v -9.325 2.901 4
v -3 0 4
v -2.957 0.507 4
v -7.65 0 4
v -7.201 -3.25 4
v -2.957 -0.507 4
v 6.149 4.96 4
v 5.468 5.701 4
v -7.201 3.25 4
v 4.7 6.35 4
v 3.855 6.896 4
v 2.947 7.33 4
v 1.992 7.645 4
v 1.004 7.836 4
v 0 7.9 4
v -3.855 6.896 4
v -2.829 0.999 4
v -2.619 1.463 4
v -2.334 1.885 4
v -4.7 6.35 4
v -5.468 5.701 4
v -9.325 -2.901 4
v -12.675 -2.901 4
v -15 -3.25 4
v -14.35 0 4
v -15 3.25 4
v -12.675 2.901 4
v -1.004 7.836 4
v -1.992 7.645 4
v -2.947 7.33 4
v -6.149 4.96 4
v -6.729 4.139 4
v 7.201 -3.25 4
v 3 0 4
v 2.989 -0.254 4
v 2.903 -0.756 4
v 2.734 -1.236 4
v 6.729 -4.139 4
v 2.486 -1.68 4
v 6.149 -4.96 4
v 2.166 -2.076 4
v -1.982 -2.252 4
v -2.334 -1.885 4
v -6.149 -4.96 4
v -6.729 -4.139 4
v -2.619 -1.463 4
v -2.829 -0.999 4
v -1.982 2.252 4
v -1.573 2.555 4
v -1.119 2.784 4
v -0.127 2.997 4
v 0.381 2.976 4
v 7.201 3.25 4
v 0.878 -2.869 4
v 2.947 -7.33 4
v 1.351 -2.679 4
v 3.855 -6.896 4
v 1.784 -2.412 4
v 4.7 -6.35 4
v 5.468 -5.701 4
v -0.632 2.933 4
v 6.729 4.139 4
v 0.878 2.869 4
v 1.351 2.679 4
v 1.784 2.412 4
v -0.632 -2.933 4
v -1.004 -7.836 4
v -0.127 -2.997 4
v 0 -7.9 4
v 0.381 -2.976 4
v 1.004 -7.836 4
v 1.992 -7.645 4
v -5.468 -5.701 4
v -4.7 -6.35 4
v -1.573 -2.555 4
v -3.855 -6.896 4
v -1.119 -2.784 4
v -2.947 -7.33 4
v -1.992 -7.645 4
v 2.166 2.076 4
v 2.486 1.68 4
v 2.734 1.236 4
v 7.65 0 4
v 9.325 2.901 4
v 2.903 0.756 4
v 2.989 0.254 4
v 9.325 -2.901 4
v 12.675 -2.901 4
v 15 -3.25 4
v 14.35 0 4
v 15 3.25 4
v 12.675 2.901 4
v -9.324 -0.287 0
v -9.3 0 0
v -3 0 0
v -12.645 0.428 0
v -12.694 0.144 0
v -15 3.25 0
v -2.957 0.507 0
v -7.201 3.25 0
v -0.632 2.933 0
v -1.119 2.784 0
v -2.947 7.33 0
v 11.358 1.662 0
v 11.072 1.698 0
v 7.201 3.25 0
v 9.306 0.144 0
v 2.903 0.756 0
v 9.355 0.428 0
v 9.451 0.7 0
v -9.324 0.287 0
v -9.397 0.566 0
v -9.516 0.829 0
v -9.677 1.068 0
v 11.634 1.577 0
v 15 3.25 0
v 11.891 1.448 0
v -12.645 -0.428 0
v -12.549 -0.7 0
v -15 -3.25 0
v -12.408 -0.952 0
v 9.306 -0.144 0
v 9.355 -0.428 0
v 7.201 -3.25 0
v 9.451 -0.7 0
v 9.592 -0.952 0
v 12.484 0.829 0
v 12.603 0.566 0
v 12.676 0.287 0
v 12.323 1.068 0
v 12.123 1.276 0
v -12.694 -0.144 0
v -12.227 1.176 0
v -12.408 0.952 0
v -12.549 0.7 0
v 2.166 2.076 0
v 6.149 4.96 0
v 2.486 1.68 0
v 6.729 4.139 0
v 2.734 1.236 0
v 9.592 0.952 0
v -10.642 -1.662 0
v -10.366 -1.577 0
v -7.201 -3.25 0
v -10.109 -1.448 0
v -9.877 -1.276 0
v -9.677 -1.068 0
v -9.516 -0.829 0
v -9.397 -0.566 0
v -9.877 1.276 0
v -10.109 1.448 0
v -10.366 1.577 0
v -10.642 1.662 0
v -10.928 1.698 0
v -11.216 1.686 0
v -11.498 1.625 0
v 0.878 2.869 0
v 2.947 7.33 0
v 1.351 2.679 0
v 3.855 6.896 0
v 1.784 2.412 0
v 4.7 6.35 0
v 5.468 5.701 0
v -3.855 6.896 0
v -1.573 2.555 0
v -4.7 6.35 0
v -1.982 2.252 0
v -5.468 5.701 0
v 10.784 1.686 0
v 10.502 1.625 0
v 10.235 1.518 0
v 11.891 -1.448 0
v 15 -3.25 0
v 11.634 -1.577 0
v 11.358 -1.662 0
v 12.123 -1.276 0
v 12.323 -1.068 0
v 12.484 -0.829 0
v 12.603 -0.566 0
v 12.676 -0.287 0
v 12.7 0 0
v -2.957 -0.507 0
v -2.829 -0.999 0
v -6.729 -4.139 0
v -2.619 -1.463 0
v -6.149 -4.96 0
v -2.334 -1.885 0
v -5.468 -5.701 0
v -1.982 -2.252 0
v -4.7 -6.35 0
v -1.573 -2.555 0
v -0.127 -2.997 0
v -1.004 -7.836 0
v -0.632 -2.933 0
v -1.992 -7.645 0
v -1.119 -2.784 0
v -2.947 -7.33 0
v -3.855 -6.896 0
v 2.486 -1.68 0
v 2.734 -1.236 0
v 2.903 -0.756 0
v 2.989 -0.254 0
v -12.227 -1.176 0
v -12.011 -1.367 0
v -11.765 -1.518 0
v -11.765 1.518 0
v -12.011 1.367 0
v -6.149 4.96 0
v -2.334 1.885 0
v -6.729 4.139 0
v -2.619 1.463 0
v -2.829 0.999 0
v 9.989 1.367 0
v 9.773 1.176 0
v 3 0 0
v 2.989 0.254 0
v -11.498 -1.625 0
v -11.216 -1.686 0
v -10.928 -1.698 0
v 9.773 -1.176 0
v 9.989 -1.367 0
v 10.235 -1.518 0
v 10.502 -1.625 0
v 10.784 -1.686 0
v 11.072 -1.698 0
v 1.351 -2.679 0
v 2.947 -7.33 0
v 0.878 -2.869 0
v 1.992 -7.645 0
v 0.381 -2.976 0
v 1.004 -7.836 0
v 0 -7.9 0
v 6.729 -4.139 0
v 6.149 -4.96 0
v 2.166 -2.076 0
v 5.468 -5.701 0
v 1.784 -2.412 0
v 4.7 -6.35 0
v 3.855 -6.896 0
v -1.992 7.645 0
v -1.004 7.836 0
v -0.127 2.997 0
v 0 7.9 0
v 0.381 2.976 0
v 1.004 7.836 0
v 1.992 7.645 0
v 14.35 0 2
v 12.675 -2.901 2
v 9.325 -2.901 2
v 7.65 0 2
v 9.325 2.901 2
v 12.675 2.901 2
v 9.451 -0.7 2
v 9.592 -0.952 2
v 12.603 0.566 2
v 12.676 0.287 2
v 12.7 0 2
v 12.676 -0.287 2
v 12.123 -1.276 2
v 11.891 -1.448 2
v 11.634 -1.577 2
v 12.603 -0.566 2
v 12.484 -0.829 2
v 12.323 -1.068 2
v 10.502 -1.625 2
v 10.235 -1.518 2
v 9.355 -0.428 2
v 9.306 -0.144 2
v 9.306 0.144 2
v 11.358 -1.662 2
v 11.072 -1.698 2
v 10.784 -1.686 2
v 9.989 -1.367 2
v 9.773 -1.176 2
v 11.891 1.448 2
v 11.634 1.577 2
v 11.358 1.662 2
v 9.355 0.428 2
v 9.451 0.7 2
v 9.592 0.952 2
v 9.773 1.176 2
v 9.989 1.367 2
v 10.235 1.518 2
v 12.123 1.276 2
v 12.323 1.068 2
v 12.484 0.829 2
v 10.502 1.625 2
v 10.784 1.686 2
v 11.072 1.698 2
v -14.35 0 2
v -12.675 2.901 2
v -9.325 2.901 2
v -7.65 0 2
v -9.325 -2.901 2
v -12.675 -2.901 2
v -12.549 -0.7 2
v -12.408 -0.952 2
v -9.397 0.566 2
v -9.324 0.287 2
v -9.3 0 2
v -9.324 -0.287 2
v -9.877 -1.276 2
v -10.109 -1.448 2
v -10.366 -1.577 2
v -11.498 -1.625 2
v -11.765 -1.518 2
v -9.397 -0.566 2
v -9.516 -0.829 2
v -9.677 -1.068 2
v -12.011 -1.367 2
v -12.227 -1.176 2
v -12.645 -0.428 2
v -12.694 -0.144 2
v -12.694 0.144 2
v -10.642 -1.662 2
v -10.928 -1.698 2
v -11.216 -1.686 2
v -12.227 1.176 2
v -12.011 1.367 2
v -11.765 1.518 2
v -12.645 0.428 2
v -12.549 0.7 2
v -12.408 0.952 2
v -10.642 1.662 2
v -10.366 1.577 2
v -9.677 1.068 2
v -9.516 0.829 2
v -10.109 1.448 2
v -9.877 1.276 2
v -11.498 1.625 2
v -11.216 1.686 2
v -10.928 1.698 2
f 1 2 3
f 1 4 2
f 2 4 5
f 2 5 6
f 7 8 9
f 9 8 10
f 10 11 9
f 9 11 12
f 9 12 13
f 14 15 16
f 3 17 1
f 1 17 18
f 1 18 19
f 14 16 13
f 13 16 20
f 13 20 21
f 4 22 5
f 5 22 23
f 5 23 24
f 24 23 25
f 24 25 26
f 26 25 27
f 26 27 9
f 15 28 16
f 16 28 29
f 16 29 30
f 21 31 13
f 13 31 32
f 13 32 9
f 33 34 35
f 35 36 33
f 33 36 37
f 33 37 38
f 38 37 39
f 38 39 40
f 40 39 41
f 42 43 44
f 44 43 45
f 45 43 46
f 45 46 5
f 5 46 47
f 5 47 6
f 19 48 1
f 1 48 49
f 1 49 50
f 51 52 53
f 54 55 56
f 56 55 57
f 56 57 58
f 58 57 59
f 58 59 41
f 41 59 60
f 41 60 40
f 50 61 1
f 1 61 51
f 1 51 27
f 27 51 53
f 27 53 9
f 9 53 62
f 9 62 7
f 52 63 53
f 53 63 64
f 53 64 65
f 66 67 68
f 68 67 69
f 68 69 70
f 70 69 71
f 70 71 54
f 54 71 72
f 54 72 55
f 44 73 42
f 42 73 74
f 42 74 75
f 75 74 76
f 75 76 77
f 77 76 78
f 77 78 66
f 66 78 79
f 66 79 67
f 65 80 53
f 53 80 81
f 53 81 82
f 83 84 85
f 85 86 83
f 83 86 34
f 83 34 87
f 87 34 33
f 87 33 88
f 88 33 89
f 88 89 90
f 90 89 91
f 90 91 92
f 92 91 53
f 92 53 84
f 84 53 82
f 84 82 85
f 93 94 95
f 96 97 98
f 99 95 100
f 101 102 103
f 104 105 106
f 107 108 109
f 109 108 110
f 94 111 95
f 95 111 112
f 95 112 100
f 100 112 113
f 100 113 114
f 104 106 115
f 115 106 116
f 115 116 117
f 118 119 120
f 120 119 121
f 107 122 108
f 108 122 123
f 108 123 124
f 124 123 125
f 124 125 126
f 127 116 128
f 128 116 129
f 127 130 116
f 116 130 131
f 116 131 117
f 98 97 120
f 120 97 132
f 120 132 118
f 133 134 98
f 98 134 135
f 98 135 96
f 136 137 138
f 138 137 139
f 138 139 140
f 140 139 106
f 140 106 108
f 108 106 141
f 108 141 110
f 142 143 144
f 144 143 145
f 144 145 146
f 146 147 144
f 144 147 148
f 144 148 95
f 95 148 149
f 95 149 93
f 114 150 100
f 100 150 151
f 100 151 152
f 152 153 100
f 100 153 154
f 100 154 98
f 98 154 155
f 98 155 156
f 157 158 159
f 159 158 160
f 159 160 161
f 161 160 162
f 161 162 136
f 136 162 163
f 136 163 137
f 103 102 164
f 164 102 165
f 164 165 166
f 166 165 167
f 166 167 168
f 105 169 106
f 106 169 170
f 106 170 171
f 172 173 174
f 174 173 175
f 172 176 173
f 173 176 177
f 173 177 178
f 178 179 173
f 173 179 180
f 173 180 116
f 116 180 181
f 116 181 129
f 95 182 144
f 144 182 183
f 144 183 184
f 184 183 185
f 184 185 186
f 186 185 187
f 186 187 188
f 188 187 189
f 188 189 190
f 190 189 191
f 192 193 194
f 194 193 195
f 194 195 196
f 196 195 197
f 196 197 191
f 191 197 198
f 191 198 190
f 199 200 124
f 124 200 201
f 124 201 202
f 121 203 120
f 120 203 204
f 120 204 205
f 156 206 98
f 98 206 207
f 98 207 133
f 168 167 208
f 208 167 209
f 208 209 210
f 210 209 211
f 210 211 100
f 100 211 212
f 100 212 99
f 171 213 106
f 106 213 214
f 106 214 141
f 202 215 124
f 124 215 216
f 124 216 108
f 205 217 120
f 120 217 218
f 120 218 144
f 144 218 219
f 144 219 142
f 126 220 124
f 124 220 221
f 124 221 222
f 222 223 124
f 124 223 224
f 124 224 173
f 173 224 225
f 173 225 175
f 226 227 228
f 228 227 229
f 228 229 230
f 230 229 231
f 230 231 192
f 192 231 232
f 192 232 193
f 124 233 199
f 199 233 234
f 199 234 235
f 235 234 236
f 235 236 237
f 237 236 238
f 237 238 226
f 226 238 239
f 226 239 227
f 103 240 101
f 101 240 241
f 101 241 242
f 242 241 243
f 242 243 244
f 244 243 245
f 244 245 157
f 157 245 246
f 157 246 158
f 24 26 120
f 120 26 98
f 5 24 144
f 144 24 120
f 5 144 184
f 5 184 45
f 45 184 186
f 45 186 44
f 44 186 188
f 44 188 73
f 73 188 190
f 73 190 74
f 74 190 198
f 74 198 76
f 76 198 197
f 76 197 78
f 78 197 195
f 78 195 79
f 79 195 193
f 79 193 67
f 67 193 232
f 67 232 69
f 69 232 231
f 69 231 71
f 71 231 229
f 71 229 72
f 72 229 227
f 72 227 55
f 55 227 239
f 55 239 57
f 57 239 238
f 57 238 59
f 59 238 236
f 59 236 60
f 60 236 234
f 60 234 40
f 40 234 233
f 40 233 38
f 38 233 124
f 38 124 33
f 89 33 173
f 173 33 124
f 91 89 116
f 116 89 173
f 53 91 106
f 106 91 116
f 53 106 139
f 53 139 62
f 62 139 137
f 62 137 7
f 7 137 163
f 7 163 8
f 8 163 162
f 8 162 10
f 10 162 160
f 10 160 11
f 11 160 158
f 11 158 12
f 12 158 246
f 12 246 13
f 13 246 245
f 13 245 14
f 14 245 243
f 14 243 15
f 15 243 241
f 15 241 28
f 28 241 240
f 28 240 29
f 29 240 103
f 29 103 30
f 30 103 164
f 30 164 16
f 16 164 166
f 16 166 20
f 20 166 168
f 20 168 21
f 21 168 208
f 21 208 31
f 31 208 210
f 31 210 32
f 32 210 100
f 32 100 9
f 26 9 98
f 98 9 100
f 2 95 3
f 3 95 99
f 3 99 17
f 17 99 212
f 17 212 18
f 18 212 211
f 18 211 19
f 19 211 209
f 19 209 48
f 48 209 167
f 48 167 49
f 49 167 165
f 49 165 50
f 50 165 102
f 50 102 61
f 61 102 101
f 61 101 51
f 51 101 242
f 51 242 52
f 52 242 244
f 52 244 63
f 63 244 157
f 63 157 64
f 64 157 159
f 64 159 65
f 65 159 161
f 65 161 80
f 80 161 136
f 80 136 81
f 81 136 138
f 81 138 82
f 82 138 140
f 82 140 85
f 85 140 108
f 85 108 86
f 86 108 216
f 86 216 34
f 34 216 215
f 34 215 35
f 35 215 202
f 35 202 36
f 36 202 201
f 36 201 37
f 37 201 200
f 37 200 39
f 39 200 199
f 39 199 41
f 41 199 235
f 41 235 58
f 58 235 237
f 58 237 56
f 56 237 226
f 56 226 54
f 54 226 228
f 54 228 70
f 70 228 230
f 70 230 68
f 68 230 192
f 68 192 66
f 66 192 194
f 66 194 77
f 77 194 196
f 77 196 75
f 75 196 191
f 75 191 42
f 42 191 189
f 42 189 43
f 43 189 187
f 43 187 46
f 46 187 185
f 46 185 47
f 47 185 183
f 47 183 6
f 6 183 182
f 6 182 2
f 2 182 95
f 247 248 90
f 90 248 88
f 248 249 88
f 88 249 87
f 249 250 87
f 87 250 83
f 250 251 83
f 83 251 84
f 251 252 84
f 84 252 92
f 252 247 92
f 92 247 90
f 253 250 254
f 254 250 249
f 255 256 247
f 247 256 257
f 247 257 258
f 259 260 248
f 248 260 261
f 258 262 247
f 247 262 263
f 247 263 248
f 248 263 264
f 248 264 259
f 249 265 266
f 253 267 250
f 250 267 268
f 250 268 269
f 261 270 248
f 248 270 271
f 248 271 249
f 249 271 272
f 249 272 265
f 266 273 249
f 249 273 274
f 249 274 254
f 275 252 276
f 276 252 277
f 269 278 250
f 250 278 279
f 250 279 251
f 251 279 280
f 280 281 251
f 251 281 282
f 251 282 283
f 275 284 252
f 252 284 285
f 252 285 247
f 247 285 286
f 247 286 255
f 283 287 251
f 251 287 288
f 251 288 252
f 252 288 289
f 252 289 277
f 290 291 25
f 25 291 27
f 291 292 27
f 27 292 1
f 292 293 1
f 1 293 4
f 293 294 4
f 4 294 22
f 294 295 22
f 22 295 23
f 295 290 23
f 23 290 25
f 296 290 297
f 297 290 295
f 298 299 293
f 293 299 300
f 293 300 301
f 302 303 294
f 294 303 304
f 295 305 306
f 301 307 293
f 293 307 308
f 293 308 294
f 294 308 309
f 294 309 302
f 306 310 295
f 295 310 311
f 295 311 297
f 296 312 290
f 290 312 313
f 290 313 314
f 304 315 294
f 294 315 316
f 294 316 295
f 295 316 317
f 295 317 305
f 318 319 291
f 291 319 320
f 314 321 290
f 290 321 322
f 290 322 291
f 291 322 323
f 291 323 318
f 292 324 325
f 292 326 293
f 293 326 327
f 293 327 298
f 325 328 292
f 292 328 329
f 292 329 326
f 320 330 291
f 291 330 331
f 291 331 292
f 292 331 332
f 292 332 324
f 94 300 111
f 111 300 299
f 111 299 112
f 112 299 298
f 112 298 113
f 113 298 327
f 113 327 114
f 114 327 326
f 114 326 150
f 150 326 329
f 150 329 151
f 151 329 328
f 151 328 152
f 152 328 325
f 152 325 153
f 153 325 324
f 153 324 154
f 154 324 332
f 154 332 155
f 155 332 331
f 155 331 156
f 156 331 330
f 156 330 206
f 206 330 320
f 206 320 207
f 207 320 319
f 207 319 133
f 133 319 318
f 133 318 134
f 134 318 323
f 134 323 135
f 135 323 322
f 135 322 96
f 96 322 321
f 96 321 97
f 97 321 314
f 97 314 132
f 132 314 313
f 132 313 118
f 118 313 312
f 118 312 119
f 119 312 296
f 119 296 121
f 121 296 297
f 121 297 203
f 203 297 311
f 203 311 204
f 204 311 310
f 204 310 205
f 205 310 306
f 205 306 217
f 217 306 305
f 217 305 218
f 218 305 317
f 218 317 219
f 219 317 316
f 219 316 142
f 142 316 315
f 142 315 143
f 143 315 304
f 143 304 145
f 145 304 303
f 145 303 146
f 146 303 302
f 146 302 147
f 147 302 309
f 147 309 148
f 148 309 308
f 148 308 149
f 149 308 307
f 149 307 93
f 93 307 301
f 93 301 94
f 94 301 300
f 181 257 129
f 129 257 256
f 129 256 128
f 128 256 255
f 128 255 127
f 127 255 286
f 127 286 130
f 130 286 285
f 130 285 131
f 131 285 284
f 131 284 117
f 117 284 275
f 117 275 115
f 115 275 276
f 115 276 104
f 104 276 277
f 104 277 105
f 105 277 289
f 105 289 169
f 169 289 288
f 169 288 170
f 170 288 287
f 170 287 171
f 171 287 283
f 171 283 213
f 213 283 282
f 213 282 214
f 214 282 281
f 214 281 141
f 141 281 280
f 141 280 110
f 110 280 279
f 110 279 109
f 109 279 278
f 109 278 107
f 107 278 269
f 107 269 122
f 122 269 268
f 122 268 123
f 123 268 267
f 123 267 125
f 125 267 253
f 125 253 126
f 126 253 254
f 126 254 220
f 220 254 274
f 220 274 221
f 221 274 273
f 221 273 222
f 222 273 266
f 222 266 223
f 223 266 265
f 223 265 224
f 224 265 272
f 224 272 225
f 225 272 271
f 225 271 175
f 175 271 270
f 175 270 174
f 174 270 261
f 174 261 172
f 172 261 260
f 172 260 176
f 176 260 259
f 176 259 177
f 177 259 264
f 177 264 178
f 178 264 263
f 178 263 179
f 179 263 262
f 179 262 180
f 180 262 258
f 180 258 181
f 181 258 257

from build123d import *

# Parameters (mm, degrees)
CROQUIS1_R              = 3
SALIENTE_EXTRUIR1_DEPTH = 4
CORTAR_EXTRUIR1_DEPTH   = 2
CROQUIS3_R              = 1.7
CORTAR_EXTRUIR2_DEPTH   = 10


with BuildPart() as part:
    # Croquis1 → Saliente-Extruir1 (new body)
    with BuildSketch(Plane.XY):
        with BuildLine():
            Line((-7.200520814, 3.25), (-15, 3.25))
            Line((-15, 3.25), (-15, -3.25))
            Line((-15, -3.25), (-7.200520814, -3.25))
            ThreePointArc((-7.200520814, -3.25), (0, -7.9), (7.200520814, -3.25))
            Line((7.200520814, -3.25), (15, -3.25))
            Line((15, -3.25), (15, 3.25))
            Line((15, 3.25), (7.200520814, 3.25))
            ThreePointArc((7.200520814, 3.25), (0, 7.9), (-7.200520814, 3.25))
        make_face()
        Circle(CROQUIS1_R, mode=Mode.SUBTRACT)
    extrude(amount=SALIENTE_EXTRUIR1_DEPTH)

    # Croquis2 → Cortar-Extruir1 (cut)
    with BuildSketch(Plane.XY.offset(4)):
        Polygon((-14.35, 0), (-12.675, -2.901185103), (-9.325, -2.901185103), (-7.65, 0), (-9.325, 2.901185103), (-12.675, 2.901185103), align=None)
        Polygon((14.35, 0), (12.675, 2.901185103), (9.325, 2.901185103), (7.65, 0), (9.325, -2.901185103), (12.675, -2.901185103), align=None)
    extrude(amount=-CORTAR_EXTRUIR1_DEPTH, mode=Mode.SUBTRACT)

    # Croquis3 → Cortar-Extruir2 (cut)
    with BuildSketch(Plane.XY.offset(4)):
        with Locations((-11, 0)):
            Circle(CROQUIS3_R)
        with Locations((11, 0)):
            Circle(CROQUIS3_R)
    extrude(amount=-CORTAR_EXTRUIR2_DEPTH, mode=Mode.SUBTRACT)


solid = part.part
